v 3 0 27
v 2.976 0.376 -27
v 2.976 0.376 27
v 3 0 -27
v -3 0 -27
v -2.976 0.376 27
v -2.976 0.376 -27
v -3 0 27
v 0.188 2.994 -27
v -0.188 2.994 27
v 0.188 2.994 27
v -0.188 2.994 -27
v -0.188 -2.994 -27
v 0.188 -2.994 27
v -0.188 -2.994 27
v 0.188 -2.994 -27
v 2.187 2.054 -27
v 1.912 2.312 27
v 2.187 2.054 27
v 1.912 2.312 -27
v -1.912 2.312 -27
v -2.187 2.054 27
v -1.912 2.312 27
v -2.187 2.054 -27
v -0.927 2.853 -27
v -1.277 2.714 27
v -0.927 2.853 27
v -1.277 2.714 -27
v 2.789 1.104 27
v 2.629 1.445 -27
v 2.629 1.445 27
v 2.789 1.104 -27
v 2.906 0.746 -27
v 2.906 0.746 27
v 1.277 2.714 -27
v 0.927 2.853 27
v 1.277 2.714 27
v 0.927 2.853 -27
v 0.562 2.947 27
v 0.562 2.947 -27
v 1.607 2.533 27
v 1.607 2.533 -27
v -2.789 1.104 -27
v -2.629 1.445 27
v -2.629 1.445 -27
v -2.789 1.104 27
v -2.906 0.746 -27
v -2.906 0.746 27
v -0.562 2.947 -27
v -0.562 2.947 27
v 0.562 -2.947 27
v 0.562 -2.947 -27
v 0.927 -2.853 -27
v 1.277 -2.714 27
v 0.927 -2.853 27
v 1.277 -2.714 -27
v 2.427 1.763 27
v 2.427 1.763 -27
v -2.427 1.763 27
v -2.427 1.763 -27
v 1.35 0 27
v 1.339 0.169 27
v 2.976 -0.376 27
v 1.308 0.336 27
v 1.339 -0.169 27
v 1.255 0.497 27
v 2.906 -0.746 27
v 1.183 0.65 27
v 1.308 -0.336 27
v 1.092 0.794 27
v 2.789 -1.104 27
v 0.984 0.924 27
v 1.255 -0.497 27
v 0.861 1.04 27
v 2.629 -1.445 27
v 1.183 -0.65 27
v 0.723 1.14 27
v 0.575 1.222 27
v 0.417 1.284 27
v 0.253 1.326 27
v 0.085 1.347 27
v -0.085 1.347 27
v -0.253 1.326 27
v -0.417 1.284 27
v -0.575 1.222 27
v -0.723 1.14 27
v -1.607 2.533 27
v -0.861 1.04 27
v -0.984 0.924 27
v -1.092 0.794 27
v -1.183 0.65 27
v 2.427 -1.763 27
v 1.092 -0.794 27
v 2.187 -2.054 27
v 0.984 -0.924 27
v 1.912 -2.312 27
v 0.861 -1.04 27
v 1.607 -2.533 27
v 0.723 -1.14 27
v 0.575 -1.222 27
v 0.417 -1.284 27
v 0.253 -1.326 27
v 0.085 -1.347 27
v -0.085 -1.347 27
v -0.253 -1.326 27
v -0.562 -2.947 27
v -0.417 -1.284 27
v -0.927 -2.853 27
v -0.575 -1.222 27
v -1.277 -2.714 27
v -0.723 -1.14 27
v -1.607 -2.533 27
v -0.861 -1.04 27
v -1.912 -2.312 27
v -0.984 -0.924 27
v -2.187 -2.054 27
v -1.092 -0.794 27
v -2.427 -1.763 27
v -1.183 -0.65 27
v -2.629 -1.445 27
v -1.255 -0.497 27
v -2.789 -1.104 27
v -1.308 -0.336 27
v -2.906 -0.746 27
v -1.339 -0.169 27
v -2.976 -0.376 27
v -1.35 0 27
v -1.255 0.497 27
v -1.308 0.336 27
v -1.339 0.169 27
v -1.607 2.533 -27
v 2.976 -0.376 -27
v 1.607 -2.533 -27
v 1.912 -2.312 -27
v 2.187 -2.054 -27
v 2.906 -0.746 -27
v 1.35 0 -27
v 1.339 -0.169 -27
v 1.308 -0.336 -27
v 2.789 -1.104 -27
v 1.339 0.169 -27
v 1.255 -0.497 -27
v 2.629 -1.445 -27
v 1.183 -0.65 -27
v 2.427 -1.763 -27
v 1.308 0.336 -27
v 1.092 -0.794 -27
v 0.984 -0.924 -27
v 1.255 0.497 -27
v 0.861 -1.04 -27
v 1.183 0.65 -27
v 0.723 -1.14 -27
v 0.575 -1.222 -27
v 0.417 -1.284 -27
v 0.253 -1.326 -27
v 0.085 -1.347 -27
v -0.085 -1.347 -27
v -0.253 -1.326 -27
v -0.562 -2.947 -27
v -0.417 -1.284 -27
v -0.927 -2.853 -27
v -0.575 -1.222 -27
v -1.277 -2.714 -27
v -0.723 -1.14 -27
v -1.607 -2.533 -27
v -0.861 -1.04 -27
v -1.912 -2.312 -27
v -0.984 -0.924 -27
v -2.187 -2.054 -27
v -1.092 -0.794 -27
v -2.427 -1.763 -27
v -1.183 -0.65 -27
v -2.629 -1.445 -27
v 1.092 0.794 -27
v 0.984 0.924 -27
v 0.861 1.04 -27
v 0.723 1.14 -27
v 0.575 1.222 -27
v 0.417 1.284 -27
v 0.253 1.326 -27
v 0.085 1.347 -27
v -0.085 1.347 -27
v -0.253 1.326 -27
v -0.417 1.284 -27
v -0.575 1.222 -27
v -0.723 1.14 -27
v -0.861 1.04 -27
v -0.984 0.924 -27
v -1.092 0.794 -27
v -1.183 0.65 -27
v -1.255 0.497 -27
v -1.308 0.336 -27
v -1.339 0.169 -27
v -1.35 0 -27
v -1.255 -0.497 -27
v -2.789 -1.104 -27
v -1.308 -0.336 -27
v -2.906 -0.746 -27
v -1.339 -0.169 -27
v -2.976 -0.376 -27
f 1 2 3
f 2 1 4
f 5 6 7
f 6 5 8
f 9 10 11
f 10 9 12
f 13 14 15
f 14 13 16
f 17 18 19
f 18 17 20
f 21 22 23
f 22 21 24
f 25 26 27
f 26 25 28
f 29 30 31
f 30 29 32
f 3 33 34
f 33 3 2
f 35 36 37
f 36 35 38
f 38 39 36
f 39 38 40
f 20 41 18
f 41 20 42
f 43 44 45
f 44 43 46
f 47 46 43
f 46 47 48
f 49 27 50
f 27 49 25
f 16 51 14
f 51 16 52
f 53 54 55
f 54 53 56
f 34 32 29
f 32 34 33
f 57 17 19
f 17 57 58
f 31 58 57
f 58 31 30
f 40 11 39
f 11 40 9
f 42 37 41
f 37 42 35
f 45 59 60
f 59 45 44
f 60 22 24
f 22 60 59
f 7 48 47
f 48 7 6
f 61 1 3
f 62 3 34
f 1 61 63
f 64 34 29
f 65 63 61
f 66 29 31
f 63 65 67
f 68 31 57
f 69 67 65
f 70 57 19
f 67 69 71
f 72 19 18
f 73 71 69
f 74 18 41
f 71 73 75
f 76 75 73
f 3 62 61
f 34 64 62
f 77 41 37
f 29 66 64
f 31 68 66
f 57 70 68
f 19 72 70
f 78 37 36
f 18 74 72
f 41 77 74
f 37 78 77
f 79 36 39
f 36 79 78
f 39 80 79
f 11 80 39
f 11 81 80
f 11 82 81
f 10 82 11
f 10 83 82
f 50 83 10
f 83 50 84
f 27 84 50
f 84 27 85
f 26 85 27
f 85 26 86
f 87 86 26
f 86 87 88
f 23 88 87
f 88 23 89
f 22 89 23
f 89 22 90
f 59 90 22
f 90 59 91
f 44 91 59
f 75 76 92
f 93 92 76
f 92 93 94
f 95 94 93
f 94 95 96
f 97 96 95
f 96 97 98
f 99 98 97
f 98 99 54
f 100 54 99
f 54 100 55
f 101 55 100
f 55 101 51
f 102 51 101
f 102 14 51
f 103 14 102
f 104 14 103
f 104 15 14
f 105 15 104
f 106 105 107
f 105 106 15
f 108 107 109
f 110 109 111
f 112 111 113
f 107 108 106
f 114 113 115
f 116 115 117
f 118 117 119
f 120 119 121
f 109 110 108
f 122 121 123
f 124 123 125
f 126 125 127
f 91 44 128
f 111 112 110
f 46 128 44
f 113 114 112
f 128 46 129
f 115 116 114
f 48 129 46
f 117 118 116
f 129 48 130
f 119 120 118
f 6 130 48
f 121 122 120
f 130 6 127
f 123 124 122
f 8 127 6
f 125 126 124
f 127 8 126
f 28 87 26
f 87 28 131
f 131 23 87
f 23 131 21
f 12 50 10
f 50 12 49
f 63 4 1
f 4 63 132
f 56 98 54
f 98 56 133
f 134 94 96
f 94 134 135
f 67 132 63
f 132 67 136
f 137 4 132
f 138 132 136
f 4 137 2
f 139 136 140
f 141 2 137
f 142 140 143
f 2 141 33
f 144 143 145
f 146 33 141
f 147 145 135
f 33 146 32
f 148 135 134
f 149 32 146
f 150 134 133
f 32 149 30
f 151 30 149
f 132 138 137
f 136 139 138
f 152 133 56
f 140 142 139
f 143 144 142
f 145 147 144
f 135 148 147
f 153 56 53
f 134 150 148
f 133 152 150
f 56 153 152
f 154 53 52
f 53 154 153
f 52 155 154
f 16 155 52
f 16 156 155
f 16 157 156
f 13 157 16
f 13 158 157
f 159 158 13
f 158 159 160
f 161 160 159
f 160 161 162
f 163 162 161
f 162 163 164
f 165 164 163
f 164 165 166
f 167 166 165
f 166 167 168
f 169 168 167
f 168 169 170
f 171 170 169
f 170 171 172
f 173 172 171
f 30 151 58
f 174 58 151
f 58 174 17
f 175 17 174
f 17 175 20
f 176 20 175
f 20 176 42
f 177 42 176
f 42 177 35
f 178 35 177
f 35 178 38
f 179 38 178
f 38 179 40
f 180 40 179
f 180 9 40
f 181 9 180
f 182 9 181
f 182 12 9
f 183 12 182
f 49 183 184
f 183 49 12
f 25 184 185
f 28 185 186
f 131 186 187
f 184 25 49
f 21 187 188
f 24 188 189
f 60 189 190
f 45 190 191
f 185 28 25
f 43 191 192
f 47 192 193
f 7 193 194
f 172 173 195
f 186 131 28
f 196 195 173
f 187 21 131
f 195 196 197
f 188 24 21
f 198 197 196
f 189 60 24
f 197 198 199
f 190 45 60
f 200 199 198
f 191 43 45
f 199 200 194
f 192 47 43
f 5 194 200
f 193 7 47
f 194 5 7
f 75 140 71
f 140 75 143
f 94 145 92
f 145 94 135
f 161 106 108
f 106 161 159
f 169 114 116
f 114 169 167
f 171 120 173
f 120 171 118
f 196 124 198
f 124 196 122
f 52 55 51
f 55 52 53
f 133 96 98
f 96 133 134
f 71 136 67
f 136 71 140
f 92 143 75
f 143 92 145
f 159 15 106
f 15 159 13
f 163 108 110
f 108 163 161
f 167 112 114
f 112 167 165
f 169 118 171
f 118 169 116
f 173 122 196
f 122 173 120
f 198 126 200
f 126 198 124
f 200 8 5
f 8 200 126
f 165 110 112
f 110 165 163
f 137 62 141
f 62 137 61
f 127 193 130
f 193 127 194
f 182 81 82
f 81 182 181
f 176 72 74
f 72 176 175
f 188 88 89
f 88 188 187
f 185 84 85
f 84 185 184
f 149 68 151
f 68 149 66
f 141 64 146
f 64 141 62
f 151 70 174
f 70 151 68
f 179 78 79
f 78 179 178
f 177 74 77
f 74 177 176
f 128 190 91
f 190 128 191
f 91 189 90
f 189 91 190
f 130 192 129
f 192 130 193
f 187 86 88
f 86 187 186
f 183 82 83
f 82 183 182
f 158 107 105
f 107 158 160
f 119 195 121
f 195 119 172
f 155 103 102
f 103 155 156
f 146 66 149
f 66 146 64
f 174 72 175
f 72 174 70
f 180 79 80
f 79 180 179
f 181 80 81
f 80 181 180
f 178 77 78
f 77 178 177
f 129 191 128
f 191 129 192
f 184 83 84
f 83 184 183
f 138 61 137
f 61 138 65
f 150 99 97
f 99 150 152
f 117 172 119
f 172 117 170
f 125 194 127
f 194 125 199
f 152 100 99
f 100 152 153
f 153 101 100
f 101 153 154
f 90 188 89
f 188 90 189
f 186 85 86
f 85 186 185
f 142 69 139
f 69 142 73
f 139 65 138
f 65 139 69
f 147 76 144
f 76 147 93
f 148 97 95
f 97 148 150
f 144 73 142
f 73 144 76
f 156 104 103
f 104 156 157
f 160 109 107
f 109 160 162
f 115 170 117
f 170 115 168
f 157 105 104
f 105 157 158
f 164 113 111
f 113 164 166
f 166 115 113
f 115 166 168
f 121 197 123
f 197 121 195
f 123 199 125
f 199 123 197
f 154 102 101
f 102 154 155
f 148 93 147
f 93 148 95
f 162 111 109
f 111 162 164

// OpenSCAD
$fn = 50;


difference() {
	union() {
		translate(v = [0, 0, -27.0000000000]) {
			cylinder(h = 54, r = 3.0000000000);
		}
	}
	union() {
		translate(v = [0, 0, -100.0000000000]) {
			cylinder(h = 200, r = 1.3500000000);
		}
	}
}
